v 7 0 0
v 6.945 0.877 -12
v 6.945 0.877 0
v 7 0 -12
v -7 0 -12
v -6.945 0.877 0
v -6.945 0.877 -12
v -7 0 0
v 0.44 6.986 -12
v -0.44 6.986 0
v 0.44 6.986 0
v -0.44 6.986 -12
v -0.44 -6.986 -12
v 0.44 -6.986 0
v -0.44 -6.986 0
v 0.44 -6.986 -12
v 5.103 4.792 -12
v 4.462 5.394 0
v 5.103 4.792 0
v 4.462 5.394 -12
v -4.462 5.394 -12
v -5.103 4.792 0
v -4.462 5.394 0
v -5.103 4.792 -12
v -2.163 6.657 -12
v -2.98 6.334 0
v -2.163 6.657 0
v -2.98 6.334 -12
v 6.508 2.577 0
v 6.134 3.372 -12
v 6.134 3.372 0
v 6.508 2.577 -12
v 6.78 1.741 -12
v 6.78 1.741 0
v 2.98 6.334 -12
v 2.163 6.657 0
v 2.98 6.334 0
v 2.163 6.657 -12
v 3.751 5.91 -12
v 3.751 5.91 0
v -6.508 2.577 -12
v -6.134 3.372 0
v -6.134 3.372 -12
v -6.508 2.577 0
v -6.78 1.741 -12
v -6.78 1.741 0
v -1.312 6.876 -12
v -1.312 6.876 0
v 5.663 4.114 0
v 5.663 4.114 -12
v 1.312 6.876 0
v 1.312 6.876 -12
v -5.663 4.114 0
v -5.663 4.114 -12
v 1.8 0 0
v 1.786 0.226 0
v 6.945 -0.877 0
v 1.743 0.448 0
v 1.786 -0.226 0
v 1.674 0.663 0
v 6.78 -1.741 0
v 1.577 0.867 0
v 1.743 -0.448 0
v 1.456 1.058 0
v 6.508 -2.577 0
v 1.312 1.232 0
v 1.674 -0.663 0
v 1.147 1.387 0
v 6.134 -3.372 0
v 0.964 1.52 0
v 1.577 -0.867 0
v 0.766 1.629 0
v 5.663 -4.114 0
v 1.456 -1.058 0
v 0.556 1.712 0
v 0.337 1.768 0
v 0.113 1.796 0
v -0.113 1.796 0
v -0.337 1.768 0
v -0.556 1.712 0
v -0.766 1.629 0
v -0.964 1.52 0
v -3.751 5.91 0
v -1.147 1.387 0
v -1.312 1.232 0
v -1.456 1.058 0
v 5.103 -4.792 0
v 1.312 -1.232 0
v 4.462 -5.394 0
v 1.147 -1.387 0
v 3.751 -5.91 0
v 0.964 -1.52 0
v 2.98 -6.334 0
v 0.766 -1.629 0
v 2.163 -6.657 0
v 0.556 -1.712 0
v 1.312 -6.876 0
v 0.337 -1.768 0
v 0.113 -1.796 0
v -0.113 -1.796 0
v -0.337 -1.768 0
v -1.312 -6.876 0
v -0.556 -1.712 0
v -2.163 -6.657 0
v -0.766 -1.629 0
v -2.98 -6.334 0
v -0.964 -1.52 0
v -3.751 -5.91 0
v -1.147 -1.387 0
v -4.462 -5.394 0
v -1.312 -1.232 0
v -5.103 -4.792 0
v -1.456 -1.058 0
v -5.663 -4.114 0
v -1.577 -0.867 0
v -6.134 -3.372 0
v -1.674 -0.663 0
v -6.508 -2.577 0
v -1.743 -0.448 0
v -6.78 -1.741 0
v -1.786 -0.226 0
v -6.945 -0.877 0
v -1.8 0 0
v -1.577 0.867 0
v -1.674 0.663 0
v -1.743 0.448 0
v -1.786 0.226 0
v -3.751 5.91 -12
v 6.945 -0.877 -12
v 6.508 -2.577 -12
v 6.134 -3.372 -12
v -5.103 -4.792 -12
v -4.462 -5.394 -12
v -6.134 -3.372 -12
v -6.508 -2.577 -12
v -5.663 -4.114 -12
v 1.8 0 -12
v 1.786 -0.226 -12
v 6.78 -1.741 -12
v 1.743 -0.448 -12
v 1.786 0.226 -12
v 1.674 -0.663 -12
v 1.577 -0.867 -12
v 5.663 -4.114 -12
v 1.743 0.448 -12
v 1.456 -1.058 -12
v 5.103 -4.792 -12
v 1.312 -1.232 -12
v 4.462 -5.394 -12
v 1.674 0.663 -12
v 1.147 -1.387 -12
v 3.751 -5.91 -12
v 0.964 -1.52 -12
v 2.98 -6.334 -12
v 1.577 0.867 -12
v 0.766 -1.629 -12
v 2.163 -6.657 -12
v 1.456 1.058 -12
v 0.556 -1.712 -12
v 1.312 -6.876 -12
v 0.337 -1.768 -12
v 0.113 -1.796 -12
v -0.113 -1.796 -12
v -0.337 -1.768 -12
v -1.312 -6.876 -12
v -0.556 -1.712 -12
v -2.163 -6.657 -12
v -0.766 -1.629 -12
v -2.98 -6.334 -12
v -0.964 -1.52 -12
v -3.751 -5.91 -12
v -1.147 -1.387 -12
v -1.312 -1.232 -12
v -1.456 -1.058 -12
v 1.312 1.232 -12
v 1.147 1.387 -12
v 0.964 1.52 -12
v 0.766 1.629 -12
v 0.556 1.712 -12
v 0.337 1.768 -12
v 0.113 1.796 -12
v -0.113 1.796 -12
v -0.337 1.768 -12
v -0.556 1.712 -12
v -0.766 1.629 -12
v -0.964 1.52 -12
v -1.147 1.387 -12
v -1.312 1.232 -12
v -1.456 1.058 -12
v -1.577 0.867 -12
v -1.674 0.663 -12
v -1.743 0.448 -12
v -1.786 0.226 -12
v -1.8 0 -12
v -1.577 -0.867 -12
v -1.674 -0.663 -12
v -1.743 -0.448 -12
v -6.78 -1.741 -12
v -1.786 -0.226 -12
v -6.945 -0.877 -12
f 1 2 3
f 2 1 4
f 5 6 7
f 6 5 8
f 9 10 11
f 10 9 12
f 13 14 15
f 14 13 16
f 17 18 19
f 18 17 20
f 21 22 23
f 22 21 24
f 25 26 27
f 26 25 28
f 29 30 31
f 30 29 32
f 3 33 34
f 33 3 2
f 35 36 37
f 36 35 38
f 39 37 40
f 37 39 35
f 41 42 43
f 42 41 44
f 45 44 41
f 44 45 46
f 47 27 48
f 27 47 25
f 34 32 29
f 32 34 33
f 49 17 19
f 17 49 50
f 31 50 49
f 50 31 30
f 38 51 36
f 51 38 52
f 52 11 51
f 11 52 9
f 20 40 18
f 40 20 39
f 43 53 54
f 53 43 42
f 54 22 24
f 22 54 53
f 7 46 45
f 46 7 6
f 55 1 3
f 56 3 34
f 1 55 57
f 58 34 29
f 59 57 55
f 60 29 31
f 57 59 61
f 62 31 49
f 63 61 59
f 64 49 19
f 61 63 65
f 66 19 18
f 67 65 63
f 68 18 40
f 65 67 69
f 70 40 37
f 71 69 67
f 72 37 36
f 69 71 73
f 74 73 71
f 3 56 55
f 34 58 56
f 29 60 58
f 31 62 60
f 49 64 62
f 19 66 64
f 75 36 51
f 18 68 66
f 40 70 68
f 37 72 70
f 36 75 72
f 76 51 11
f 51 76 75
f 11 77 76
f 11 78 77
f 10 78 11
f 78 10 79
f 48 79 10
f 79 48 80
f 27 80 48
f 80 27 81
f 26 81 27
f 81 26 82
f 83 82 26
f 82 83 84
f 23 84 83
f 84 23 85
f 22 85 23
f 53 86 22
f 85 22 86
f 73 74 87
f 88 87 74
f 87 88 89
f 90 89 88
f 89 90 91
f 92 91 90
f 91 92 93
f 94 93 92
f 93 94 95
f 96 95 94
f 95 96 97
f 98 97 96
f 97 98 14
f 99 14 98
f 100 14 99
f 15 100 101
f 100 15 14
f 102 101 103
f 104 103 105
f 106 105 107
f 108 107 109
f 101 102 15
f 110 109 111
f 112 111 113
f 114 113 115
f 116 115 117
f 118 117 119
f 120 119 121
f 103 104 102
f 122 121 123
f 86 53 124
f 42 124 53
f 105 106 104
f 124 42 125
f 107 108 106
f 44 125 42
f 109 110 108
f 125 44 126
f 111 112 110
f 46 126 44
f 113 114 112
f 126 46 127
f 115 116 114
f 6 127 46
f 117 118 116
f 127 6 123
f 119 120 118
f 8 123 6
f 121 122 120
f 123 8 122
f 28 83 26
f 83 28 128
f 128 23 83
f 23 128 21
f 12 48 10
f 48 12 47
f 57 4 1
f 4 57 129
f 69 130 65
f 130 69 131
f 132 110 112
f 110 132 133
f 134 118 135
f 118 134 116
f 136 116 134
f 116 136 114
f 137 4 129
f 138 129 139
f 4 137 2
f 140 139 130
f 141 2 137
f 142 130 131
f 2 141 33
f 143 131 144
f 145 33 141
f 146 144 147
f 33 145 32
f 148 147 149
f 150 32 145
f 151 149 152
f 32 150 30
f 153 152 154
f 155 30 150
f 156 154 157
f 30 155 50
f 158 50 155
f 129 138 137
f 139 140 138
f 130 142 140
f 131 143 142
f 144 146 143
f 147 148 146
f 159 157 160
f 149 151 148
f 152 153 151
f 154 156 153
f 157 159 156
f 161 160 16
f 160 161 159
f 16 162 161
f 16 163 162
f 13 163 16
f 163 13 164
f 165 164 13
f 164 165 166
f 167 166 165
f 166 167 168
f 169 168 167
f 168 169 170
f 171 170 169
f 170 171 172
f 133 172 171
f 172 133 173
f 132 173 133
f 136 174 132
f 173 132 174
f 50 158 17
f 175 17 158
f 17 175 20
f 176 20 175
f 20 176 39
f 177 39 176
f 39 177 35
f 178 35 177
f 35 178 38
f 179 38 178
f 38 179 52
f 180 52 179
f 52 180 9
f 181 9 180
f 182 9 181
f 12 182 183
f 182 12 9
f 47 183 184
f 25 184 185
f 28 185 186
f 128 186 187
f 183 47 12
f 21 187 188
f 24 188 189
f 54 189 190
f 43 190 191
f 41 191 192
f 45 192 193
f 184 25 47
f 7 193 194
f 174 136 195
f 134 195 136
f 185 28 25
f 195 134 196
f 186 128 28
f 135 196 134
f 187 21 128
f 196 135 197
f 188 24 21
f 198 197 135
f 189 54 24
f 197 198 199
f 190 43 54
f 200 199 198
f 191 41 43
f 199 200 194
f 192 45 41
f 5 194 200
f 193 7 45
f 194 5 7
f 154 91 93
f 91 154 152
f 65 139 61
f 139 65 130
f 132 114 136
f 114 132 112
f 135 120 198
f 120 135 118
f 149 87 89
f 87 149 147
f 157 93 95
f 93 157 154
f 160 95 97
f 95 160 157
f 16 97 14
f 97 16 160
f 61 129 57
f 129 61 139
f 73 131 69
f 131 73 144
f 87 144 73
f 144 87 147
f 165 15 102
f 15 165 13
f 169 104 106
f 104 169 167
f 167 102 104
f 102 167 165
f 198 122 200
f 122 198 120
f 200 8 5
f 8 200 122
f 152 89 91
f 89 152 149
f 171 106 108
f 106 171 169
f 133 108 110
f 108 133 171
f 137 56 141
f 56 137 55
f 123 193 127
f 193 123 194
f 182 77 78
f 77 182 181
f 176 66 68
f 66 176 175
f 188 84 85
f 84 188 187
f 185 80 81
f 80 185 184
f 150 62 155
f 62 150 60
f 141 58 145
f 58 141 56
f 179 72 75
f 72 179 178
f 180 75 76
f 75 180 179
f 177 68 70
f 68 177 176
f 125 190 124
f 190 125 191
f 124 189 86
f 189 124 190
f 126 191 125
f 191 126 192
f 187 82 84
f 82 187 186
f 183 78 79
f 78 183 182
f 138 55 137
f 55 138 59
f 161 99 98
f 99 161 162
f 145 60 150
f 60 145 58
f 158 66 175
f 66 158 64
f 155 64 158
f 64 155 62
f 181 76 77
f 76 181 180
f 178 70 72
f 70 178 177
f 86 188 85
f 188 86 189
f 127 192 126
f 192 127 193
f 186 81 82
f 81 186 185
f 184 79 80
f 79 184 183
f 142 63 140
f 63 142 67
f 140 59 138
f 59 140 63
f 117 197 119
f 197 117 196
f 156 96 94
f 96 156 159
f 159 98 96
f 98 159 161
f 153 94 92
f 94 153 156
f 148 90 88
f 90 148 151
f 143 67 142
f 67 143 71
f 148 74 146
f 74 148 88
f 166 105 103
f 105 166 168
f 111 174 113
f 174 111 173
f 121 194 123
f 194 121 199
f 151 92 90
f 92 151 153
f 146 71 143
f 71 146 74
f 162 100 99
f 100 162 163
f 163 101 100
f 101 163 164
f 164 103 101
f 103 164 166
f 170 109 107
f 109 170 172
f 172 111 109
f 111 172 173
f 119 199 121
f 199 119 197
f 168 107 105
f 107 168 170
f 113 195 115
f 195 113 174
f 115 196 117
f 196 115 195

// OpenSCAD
$fn = 50;


difference() {
	union() {
		translate(v = [0, 0, -12.0000000000]) {
			cylinder(h = 12, r = 7.0000000000);
		}
		cylinder(h = 0, r = 13.0000000000);
	}
	union() {
		#translate(v = [0, 0, -12]) {
			cylinder(h = 12, r = 1.8000000000);
		}
	}
}
